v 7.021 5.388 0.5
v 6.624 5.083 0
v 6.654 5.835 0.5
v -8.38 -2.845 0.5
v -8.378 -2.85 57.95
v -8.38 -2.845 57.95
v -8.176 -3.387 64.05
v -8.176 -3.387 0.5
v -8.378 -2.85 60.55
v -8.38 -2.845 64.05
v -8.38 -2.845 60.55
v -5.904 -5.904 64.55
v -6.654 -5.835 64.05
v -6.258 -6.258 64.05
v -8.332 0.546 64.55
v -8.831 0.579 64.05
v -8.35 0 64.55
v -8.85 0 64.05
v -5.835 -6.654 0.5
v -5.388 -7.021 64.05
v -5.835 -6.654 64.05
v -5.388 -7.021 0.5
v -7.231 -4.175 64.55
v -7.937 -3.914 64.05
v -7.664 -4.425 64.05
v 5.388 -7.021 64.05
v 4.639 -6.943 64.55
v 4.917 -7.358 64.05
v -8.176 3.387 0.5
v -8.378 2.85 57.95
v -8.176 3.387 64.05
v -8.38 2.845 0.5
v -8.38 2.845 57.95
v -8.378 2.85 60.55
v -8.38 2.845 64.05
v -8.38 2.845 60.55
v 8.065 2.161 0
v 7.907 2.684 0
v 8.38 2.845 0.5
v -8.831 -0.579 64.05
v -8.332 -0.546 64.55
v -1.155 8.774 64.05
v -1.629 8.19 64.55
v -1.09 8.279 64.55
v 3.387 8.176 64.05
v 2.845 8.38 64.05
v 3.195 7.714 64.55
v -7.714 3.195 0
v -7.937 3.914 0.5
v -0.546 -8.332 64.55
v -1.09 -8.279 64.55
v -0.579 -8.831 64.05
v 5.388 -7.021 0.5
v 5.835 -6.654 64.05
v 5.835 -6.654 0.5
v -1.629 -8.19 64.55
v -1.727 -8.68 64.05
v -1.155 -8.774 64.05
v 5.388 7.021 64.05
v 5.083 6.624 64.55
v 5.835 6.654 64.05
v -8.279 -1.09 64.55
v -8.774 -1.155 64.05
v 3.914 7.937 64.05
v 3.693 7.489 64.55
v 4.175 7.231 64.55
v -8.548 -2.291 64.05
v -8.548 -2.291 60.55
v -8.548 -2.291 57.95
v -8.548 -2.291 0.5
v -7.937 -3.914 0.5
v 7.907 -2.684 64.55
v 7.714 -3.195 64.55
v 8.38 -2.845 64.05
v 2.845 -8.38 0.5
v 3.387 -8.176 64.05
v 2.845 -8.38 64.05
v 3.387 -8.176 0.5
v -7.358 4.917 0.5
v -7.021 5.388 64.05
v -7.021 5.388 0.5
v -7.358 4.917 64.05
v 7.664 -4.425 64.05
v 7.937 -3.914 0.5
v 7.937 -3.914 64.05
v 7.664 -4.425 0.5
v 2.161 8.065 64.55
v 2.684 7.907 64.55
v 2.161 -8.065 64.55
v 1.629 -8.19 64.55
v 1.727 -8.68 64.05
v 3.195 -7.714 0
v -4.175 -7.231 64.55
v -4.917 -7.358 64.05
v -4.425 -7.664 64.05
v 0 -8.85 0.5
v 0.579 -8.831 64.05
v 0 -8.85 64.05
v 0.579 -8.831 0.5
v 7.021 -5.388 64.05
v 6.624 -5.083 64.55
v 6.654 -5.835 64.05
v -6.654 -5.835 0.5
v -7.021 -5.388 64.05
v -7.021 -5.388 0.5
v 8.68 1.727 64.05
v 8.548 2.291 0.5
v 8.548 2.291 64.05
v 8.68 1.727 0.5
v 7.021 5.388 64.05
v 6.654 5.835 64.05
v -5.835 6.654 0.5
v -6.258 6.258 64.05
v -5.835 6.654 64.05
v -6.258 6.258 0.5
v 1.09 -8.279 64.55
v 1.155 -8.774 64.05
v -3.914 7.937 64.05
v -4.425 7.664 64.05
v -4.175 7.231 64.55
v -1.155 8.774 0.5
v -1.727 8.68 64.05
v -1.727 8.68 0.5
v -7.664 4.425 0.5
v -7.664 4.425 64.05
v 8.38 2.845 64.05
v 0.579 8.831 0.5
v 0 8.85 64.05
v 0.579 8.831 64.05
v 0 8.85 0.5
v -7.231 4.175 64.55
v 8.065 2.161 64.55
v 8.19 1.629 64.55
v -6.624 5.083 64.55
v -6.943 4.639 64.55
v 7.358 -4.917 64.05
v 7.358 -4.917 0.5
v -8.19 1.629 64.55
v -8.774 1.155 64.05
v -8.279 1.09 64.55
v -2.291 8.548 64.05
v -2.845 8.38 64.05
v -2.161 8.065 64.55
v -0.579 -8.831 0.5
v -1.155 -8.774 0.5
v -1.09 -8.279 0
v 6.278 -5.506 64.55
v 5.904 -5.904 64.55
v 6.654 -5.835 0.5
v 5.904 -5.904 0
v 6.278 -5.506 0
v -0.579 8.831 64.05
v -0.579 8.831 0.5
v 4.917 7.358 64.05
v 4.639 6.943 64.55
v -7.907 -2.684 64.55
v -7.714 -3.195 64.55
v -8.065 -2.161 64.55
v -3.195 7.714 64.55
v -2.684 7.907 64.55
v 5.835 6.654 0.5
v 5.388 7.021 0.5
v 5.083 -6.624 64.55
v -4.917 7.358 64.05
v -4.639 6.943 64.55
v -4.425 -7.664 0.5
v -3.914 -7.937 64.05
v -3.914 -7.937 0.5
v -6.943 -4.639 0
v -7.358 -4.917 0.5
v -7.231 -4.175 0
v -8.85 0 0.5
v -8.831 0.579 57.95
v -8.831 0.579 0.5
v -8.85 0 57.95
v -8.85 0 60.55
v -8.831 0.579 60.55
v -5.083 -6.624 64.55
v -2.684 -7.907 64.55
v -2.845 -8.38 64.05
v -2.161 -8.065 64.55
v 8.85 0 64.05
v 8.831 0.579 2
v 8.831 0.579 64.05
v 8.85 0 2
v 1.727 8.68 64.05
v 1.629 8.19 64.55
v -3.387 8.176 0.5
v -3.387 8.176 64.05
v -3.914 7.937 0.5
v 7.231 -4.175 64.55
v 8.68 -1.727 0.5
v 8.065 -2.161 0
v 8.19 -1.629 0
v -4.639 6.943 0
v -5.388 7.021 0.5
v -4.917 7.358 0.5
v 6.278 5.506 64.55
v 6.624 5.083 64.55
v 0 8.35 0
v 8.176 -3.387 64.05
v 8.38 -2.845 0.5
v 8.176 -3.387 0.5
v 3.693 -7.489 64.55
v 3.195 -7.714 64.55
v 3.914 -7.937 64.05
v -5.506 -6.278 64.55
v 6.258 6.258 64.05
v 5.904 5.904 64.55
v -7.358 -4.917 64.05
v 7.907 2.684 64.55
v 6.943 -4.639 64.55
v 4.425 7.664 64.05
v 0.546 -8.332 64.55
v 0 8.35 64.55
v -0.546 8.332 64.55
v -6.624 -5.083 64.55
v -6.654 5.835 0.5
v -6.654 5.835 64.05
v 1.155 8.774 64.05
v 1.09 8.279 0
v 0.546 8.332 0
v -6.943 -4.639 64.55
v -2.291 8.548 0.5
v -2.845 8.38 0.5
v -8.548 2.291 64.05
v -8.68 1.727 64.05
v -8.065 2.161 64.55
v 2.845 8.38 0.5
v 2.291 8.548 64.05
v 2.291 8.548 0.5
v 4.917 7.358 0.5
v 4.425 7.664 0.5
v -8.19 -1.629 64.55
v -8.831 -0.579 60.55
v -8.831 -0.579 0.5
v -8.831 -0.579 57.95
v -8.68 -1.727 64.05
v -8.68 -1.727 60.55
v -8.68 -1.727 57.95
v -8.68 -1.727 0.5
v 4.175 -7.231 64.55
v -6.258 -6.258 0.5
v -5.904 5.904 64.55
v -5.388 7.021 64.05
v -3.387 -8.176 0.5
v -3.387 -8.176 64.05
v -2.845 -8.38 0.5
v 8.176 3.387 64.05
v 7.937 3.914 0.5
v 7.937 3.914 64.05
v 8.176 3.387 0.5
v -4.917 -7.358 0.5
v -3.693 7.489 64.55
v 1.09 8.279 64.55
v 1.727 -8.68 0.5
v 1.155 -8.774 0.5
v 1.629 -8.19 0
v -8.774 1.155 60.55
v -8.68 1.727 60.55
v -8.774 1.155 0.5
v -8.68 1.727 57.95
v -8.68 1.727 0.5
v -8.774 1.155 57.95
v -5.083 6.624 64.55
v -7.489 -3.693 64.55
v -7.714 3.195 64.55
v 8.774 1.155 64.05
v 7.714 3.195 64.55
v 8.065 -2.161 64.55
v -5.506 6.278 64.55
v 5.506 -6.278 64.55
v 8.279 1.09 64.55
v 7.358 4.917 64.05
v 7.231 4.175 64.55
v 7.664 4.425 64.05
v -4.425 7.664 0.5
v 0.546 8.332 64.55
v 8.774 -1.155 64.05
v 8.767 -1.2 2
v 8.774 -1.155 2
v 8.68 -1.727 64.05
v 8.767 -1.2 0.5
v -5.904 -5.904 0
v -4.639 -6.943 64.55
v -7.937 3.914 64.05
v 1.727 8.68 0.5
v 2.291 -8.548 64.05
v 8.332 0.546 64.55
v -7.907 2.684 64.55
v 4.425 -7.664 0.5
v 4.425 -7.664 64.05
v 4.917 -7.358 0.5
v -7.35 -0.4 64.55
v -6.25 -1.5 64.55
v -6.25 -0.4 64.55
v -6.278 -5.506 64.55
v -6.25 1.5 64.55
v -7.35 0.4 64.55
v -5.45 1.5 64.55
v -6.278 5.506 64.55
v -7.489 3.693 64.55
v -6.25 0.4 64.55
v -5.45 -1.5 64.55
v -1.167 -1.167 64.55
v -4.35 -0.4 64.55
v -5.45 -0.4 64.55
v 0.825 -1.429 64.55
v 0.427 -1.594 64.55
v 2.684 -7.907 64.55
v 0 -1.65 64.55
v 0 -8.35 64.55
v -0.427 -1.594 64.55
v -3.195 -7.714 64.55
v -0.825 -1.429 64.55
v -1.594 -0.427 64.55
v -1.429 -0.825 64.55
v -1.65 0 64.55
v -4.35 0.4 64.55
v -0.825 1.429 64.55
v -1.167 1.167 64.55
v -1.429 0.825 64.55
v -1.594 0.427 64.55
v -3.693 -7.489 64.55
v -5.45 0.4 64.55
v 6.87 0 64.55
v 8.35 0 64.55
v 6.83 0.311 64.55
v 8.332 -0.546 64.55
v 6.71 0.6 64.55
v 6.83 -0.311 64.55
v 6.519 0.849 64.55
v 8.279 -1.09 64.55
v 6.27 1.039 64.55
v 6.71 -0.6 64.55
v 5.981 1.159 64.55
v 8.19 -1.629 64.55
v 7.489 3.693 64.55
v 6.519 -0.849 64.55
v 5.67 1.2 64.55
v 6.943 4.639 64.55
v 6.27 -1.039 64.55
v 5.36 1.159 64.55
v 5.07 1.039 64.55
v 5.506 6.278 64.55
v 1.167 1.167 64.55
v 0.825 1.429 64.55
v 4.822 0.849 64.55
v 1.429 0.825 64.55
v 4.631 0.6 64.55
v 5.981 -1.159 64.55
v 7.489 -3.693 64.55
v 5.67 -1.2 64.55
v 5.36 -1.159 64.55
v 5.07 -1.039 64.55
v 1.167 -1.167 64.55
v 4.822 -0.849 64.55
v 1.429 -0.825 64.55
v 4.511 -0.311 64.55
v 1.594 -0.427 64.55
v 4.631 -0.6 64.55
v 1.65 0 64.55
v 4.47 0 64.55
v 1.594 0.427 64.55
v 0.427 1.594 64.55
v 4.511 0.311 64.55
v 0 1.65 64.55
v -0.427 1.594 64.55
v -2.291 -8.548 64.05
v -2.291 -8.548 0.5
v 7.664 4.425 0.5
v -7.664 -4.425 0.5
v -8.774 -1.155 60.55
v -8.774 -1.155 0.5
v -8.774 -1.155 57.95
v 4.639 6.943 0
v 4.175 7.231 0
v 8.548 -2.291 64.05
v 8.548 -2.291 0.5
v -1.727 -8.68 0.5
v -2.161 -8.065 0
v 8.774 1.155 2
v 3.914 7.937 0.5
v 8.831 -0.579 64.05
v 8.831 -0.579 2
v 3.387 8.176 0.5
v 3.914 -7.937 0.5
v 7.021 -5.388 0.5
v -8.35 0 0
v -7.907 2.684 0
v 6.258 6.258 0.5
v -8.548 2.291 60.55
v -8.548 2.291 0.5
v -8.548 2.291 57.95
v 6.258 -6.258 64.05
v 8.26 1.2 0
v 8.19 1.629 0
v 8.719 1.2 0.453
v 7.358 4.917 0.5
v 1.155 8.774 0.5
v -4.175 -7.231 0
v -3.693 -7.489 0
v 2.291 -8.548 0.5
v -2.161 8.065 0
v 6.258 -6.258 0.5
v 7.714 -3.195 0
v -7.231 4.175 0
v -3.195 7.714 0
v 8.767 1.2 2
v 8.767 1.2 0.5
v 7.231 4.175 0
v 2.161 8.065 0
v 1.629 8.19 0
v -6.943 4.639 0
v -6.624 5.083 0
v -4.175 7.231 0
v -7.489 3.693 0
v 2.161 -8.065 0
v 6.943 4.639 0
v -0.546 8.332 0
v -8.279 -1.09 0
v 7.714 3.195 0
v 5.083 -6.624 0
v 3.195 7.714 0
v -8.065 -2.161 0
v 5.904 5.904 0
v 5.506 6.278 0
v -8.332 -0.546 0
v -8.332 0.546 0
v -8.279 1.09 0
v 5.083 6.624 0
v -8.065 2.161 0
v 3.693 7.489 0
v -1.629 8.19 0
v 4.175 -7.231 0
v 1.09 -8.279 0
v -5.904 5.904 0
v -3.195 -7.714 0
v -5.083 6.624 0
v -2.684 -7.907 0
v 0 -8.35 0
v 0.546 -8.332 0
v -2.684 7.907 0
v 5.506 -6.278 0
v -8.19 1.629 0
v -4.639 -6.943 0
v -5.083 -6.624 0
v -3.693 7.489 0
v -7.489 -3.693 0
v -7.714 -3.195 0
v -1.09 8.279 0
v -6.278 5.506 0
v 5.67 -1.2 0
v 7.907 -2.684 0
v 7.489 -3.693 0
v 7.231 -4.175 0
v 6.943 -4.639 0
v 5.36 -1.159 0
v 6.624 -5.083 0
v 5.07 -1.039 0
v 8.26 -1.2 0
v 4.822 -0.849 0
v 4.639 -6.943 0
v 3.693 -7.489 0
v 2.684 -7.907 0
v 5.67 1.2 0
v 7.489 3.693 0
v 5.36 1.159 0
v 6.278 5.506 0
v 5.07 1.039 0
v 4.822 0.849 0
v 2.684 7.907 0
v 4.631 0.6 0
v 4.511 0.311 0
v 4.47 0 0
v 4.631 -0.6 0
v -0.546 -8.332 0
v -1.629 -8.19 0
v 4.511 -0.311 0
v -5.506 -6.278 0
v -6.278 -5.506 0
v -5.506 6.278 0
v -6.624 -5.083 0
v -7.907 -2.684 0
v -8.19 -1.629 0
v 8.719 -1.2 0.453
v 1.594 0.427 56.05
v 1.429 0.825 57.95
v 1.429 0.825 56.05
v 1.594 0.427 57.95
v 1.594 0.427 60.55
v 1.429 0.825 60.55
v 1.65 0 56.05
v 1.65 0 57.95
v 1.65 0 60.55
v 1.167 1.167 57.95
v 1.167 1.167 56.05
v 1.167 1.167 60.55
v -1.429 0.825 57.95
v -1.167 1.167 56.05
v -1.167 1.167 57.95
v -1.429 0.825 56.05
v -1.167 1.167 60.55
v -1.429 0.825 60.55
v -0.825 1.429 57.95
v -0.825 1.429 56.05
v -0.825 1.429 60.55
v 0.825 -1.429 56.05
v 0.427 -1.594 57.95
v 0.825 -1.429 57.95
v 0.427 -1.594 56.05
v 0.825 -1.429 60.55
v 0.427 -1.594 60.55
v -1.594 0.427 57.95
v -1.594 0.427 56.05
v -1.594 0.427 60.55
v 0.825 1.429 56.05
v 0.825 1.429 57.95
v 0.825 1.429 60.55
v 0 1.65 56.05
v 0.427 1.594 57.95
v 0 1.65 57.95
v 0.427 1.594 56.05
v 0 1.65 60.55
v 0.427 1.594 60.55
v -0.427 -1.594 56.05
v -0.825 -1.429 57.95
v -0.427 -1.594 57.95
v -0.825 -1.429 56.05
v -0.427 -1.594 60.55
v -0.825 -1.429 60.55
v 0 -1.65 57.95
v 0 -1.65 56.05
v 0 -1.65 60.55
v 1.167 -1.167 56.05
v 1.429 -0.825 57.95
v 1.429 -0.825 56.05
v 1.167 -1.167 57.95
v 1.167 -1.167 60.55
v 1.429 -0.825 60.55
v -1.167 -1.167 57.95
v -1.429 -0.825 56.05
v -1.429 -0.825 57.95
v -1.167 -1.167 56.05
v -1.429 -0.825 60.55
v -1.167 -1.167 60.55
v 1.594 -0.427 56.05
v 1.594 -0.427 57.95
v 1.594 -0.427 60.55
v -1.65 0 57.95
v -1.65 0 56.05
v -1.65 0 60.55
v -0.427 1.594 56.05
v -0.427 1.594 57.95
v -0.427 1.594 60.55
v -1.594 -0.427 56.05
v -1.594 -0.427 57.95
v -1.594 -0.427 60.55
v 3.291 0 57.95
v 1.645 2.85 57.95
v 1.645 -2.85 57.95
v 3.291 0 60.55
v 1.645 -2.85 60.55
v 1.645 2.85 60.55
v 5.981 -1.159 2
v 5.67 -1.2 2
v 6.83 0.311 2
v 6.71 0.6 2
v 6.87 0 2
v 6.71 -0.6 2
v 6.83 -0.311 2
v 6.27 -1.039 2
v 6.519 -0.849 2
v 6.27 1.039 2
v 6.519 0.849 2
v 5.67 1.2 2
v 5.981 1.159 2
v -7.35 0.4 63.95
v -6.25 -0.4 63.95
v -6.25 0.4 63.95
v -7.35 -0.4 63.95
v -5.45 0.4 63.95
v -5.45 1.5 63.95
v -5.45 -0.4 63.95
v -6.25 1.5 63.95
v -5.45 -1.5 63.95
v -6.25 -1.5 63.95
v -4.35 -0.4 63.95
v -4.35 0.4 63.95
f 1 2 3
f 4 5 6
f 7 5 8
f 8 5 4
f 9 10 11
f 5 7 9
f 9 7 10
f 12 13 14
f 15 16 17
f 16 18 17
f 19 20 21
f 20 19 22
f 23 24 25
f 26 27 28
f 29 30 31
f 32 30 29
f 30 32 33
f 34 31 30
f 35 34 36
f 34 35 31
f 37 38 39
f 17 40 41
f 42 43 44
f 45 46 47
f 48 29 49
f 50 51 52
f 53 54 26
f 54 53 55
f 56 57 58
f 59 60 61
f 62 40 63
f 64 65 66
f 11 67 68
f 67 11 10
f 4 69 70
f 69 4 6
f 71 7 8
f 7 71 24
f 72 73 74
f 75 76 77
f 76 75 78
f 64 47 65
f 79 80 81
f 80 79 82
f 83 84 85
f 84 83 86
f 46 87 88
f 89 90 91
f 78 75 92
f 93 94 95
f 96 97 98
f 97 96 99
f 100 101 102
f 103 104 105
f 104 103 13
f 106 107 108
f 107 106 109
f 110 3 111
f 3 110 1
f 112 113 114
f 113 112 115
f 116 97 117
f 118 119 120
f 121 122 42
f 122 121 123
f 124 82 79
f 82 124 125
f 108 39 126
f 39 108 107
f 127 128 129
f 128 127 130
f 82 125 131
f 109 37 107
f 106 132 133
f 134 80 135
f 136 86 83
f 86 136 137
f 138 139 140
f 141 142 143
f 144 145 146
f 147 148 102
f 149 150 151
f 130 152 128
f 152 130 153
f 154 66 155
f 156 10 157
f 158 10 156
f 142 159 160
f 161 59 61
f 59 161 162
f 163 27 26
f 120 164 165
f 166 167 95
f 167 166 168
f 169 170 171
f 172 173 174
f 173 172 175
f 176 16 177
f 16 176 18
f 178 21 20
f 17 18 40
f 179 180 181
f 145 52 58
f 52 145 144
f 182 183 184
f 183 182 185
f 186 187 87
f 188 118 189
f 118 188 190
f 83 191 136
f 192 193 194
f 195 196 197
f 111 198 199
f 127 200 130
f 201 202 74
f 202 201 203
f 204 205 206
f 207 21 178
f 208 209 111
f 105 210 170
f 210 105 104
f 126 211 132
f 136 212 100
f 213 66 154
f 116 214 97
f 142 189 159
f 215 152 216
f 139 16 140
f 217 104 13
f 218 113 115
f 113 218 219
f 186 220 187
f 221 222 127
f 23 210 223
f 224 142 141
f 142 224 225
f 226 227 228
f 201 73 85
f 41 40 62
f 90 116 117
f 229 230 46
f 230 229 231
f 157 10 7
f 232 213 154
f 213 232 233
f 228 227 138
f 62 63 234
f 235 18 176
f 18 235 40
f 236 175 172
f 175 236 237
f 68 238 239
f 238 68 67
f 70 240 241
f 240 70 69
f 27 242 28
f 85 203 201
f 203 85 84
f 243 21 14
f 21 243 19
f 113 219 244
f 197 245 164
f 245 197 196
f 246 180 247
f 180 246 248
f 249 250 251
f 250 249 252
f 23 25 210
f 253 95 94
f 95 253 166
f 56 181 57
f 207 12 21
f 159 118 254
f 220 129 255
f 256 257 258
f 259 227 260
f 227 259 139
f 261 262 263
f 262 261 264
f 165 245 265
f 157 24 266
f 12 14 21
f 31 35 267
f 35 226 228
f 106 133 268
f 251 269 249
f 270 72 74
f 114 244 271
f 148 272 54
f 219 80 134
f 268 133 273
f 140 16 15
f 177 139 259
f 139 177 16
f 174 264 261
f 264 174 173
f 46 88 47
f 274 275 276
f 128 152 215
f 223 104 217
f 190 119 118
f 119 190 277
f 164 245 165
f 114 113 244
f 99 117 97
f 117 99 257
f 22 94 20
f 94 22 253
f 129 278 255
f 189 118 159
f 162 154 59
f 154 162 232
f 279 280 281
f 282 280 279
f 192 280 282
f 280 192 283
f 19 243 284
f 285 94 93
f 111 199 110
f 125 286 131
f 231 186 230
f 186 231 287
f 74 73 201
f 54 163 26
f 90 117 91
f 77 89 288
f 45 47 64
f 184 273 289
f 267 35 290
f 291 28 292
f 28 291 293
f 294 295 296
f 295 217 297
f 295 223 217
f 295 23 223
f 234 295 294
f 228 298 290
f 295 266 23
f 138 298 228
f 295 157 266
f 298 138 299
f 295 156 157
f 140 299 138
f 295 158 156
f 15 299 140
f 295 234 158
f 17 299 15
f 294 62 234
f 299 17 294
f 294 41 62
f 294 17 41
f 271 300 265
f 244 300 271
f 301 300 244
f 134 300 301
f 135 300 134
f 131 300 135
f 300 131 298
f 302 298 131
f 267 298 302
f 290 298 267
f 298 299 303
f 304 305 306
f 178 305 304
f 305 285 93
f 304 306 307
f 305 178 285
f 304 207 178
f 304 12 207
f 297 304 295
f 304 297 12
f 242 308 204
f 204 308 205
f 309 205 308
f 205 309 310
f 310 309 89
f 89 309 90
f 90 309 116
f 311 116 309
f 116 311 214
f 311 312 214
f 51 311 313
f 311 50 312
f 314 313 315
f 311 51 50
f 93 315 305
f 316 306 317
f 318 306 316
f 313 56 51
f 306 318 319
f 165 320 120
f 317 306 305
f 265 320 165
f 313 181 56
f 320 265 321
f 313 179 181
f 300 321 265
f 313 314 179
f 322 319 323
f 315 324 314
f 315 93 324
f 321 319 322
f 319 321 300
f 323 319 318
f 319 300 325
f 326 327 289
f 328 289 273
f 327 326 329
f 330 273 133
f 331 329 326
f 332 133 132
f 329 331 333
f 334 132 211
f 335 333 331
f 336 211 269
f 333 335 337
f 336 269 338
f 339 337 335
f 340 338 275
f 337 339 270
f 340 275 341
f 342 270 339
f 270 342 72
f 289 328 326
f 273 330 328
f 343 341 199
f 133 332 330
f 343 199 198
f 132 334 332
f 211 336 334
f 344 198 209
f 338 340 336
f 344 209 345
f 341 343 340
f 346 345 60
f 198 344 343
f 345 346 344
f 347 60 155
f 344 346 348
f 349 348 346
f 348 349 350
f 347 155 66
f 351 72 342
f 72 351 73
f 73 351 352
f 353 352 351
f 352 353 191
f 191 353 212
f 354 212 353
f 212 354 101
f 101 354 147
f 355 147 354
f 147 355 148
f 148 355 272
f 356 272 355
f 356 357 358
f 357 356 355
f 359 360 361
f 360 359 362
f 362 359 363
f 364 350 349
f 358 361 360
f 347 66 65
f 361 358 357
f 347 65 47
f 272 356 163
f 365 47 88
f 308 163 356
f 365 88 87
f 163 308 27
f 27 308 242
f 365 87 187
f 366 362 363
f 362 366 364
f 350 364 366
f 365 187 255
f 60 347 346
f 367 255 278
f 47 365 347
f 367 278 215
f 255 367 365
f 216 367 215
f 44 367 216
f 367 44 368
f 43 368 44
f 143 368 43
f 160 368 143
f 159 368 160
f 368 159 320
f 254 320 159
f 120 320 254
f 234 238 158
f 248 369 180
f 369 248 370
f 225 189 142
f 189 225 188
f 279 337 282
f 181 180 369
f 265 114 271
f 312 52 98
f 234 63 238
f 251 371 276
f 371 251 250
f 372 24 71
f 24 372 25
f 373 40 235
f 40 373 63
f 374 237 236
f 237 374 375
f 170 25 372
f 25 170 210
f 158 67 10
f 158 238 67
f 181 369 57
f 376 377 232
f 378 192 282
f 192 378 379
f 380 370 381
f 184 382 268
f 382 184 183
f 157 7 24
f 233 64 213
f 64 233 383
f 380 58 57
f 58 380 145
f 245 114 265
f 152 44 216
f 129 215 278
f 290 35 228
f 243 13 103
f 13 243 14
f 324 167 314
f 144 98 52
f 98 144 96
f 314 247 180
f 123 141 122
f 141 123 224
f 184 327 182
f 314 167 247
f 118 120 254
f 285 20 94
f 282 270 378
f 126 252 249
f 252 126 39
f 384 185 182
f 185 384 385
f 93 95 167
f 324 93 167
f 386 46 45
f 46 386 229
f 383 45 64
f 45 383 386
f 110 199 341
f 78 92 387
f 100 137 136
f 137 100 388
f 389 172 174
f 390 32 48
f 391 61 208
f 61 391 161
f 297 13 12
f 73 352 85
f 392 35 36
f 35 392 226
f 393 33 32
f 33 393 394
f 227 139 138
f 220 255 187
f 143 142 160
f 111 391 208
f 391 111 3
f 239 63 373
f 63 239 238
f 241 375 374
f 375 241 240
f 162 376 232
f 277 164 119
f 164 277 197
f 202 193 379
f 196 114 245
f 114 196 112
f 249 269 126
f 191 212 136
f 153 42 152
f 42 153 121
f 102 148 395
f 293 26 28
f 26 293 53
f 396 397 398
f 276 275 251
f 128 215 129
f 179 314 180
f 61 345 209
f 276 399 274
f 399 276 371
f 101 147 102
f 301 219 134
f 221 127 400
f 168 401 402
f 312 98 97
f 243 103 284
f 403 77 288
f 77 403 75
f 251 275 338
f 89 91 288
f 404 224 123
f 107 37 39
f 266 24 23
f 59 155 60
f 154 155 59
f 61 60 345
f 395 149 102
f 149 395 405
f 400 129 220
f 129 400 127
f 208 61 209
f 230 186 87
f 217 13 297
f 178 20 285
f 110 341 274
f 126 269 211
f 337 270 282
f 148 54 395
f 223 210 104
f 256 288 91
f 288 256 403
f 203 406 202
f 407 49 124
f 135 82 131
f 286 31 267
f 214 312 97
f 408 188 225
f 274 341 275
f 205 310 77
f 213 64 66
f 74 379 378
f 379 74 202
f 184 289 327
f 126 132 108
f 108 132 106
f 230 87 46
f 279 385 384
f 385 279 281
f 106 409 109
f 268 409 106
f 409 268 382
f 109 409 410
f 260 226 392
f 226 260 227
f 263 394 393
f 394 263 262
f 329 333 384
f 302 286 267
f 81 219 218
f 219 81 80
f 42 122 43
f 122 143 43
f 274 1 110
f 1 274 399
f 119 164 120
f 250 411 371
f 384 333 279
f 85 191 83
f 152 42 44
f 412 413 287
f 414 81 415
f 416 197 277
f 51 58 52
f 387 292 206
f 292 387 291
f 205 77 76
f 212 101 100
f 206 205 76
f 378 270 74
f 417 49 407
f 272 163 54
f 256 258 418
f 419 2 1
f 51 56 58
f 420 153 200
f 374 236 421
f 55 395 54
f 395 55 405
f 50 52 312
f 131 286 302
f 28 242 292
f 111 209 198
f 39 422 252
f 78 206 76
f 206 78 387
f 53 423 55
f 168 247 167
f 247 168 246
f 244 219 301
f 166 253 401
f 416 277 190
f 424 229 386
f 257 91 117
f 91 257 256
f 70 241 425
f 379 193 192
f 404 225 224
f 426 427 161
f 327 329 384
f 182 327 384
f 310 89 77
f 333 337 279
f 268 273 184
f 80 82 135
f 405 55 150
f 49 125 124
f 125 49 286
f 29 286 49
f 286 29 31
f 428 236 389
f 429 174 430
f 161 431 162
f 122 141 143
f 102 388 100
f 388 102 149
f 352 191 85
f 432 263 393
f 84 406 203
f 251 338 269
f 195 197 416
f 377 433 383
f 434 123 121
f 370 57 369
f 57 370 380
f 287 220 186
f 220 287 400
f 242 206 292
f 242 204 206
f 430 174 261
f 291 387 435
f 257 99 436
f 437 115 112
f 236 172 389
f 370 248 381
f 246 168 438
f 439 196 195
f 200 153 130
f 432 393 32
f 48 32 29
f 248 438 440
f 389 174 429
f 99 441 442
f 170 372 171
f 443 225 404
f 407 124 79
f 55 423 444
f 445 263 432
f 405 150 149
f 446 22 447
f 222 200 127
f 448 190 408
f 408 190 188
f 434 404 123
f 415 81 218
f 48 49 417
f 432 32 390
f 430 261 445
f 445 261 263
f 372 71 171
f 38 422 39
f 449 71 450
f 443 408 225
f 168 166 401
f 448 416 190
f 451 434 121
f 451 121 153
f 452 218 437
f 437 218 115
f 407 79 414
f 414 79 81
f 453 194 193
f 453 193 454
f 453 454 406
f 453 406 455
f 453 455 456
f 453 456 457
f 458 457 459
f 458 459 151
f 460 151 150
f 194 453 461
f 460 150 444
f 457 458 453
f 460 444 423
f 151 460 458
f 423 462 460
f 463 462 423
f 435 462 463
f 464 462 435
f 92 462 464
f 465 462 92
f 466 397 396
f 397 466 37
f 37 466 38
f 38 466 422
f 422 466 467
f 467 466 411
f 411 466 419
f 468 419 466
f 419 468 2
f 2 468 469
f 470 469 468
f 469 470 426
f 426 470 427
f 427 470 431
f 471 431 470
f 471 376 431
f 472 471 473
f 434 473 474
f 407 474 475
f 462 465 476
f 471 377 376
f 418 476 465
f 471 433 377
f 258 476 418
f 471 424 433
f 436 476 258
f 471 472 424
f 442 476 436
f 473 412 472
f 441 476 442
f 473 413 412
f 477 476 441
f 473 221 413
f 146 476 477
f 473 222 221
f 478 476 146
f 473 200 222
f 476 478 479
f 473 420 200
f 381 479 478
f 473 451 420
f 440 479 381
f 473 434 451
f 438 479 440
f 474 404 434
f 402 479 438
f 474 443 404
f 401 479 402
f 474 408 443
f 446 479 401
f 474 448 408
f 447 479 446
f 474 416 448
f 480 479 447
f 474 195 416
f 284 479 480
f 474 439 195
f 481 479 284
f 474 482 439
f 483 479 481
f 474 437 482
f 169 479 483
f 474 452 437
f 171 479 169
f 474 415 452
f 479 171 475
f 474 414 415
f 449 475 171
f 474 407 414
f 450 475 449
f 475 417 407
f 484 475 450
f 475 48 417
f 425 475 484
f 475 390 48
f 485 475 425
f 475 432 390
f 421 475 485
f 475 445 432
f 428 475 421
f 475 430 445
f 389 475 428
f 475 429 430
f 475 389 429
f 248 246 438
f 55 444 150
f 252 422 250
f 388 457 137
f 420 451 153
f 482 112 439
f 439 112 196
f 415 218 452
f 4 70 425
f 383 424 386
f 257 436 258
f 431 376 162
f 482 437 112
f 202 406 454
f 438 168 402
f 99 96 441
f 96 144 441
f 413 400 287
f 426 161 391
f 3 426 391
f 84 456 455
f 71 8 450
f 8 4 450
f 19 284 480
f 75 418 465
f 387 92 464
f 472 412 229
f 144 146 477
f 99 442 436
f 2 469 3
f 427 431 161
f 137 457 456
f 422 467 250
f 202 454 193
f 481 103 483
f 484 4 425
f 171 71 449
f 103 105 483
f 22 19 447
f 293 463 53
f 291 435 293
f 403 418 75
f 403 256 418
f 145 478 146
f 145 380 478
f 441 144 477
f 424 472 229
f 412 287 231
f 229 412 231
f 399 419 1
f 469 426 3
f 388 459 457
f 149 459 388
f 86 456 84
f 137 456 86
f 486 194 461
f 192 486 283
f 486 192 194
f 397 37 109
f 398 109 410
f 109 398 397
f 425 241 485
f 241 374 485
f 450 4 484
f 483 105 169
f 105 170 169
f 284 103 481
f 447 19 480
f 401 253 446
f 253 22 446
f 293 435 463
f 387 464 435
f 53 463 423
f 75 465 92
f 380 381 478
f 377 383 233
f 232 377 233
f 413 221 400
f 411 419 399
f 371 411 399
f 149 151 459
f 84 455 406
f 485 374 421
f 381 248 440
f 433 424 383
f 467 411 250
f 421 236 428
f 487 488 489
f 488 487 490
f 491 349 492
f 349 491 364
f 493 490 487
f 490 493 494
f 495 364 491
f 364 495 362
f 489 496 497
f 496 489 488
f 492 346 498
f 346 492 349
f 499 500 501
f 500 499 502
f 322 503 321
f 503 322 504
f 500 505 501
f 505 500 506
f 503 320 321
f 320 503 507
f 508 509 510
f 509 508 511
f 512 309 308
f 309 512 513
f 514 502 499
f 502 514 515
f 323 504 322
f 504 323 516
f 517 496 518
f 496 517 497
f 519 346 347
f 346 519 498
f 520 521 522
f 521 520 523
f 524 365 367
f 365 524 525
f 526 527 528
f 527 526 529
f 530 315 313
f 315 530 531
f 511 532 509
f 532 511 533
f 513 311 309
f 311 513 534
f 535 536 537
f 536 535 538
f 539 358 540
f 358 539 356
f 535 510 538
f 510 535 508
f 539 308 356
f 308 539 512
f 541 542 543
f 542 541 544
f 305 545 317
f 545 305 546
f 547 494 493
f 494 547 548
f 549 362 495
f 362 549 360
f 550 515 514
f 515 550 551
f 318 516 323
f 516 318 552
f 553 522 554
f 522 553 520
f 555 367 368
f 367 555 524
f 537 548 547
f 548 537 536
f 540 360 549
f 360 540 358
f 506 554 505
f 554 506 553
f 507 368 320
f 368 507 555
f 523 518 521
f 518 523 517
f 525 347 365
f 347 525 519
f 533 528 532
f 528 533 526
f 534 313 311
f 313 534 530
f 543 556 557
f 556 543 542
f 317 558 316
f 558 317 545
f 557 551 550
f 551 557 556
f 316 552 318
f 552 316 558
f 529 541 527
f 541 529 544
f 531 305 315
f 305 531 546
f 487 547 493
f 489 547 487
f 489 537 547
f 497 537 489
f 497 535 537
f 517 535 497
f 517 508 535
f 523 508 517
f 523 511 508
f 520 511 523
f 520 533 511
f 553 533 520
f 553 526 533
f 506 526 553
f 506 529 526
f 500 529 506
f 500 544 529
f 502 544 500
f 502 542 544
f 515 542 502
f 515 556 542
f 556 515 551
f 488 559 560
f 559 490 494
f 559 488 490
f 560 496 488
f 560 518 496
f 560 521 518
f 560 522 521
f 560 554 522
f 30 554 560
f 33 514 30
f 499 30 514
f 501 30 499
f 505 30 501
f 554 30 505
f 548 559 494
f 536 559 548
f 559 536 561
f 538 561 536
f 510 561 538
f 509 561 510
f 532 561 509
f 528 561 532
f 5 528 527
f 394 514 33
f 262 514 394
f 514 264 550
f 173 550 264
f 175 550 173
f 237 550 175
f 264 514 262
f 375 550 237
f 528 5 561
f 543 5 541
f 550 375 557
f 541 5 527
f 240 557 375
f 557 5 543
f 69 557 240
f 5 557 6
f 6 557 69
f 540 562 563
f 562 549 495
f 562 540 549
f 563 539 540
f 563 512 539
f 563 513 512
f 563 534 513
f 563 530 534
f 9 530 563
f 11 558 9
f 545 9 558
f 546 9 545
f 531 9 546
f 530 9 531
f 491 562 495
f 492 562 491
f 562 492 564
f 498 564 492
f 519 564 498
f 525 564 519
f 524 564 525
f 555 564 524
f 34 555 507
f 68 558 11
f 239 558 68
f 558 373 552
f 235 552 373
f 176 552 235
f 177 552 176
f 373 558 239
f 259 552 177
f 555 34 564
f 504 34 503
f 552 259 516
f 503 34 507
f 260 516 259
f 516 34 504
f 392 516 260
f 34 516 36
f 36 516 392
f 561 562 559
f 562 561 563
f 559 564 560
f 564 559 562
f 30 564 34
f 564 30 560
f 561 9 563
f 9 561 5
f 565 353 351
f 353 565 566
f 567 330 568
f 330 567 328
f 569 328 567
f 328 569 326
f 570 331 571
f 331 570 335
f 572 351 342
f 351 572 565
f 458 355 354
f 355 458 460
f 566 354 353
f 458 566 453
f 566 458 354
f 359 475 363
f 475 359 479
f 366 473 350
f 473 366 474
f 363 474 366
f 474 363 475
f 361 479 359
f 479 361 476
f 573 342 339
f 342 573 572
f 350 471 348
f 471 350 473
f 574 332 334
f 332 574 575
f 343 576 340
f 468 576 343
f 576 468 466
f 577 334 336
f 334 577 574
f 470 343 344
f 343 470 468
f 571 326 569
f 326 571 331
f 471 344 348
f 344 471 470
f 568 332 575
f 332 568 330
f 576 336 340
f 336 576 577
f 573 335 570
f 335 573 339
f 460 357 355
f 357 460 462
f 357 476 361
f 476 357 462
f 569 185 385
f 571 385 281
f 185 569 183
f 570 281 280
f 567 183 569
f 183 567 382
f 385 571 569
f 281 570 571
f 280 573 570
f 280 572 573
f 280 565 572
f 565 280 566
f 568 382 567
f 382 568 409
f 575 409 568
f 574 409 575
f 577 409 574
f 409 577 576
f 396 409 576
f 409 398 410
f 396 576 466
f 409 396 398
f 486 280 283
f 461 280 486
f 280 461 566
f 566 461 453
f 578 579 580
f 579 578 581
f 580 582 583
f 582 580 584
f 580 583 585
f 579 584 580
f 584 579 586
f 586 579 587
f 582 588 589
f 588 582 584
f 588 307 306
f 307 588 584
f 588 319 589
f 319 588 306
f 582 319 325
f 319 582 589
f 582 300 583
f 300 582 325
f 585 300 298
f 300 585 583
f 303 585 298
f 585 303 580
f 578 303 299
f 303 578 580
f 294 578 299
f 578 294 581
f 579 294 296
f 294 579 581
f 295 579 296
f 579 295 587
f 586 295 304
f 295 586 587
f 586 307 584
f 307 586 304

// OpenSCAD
// ==========================================
// Proyecto: piezas3D – Puntero láser estelar
// Componente: Pila falsa
// Descripción: Reemplaza la batería del láser 303. En la cara delantera lleva el contacto positivo:
//              un tornillo M3 × 8 de cabeza alomada, roscado en una tuerca M3 embutida por una
//              ranura lateral, que aprieta el terminal de ojal del hilo rojo. El hilo baja por un
//              agujero axial descentrado y sale por una ranura radial de la cara trasera, que se
//              alinea con la ventana de la tapa trasera. Se imprime de pie, con la cara trasera
//              sobre la cama.
// ==========================================

// --- PARÁMETROS Y CONSTANTES ---
include <puntero_laser_parametros.scad>

/* [Hidden] */
r_pila = d_pila_falsa/2;
chaflan_pila = 0.5;
d_paso_tornillo = m3_d + holgura_tornillo_m3;
prof_agujero_tornillo = largo_tornillo_contacto - espesor_ojal + 1.3;   // la punta pasa la tuerca
ec_tuerca_contacto = m3_tuerca_ec + holgura_tuerca;
alto_ranura_tuerca = m3_tuerca_alto + holgura_tuerca;
largo_marca = 3;
ancho_marca = 0.8;
prof_marca = 0.6;
x_marca = -(r_pila + iso7380_m3_cabeza_d/2)/2;   // entre la cabeza del tornillo y el borde, del lado de la tuerca

// --- MÓDULOS PRINCIPALES Y ENSAMBLAJE ---
ensamblaje_principal();

module ensamblaje_principal() {
    pieza_pila_falsa();
}

module pieza_pila_falsa() {
    difference() {
        cuerpo_pila();
        agujero_tornillo_contacto();
        ranura_tuerca_contacto();
        paso_hilo();
        ranura_hilo_trasera();
        marca_positivo();
    }
}

// Cilindro con chaflán en los dos bordes (perfil 2D girado)
module cuerpo_pila() {
    rotate_extrude($fn = 96)
        polygon([[0, 0], [r_pila - chaflan_pila, 0], [r_pila, chaflan_pila],
                 [r_pila, largo_pila_falsa - chaflan_pila], [r_pila - chaflan_pila, largo_pila_falsa],
                 [0, largo_pila_falsa]]);
}

// --- Elementos que restan material ---
module agujero_tornillo_contacto() {
    translate([0, 0, largo_pila_falsa - prof_agujero_tornillo])
        cylinder(d = d_paso_tornillo, h = prof_agujero_tornillo + eps, $fn = 24);
}

// Tuerca M3 acostada (eje Z), con la ranura de entrada hacia −X (lado opuesto al hilo)
module ranura_tuerca_contacto() {
    translate([0, 0, largo_pila_falsa - prof_tuerca_contacto - alto_ranura_tuerca])
        linear_extrude(height = alto_ranura_tuerca)
            union() {
                circle(d = ec_tuerca_contacto/cos(30), $fn = 6);
                translate([-r_pila - 1, -ec_tuerca_contacto/2]) square([r_pila + 1, ec_tuerca_contacto]);
            }
}

module paso_hilo() {
    translate([descentrado_hilo_pila, 0, -1])
        cylinder(d = d_paso_hilo, h = largo_pila_falsa + 2, $fn = 24);
}

module ranura_hilo_trasera() {
    translate([descentrado_hilo_pila, -d_paso_hilo/2, -eps])
        cube([r_pila, d_paso_hilo, prof_ranura_cable + eps]);
}

// "+" en bajorrelieve en la cara delantera
module marca_positivo() {
    translate([x_marca, 0, largo_pila_falsa - prof_marca])
        linear_extrude(height = prof_marca + eps)
            union() {
                square([largo_marca, ancho_marca], center = true);
                square([ancho_marca, largo_marca], center = true);
            }
}
